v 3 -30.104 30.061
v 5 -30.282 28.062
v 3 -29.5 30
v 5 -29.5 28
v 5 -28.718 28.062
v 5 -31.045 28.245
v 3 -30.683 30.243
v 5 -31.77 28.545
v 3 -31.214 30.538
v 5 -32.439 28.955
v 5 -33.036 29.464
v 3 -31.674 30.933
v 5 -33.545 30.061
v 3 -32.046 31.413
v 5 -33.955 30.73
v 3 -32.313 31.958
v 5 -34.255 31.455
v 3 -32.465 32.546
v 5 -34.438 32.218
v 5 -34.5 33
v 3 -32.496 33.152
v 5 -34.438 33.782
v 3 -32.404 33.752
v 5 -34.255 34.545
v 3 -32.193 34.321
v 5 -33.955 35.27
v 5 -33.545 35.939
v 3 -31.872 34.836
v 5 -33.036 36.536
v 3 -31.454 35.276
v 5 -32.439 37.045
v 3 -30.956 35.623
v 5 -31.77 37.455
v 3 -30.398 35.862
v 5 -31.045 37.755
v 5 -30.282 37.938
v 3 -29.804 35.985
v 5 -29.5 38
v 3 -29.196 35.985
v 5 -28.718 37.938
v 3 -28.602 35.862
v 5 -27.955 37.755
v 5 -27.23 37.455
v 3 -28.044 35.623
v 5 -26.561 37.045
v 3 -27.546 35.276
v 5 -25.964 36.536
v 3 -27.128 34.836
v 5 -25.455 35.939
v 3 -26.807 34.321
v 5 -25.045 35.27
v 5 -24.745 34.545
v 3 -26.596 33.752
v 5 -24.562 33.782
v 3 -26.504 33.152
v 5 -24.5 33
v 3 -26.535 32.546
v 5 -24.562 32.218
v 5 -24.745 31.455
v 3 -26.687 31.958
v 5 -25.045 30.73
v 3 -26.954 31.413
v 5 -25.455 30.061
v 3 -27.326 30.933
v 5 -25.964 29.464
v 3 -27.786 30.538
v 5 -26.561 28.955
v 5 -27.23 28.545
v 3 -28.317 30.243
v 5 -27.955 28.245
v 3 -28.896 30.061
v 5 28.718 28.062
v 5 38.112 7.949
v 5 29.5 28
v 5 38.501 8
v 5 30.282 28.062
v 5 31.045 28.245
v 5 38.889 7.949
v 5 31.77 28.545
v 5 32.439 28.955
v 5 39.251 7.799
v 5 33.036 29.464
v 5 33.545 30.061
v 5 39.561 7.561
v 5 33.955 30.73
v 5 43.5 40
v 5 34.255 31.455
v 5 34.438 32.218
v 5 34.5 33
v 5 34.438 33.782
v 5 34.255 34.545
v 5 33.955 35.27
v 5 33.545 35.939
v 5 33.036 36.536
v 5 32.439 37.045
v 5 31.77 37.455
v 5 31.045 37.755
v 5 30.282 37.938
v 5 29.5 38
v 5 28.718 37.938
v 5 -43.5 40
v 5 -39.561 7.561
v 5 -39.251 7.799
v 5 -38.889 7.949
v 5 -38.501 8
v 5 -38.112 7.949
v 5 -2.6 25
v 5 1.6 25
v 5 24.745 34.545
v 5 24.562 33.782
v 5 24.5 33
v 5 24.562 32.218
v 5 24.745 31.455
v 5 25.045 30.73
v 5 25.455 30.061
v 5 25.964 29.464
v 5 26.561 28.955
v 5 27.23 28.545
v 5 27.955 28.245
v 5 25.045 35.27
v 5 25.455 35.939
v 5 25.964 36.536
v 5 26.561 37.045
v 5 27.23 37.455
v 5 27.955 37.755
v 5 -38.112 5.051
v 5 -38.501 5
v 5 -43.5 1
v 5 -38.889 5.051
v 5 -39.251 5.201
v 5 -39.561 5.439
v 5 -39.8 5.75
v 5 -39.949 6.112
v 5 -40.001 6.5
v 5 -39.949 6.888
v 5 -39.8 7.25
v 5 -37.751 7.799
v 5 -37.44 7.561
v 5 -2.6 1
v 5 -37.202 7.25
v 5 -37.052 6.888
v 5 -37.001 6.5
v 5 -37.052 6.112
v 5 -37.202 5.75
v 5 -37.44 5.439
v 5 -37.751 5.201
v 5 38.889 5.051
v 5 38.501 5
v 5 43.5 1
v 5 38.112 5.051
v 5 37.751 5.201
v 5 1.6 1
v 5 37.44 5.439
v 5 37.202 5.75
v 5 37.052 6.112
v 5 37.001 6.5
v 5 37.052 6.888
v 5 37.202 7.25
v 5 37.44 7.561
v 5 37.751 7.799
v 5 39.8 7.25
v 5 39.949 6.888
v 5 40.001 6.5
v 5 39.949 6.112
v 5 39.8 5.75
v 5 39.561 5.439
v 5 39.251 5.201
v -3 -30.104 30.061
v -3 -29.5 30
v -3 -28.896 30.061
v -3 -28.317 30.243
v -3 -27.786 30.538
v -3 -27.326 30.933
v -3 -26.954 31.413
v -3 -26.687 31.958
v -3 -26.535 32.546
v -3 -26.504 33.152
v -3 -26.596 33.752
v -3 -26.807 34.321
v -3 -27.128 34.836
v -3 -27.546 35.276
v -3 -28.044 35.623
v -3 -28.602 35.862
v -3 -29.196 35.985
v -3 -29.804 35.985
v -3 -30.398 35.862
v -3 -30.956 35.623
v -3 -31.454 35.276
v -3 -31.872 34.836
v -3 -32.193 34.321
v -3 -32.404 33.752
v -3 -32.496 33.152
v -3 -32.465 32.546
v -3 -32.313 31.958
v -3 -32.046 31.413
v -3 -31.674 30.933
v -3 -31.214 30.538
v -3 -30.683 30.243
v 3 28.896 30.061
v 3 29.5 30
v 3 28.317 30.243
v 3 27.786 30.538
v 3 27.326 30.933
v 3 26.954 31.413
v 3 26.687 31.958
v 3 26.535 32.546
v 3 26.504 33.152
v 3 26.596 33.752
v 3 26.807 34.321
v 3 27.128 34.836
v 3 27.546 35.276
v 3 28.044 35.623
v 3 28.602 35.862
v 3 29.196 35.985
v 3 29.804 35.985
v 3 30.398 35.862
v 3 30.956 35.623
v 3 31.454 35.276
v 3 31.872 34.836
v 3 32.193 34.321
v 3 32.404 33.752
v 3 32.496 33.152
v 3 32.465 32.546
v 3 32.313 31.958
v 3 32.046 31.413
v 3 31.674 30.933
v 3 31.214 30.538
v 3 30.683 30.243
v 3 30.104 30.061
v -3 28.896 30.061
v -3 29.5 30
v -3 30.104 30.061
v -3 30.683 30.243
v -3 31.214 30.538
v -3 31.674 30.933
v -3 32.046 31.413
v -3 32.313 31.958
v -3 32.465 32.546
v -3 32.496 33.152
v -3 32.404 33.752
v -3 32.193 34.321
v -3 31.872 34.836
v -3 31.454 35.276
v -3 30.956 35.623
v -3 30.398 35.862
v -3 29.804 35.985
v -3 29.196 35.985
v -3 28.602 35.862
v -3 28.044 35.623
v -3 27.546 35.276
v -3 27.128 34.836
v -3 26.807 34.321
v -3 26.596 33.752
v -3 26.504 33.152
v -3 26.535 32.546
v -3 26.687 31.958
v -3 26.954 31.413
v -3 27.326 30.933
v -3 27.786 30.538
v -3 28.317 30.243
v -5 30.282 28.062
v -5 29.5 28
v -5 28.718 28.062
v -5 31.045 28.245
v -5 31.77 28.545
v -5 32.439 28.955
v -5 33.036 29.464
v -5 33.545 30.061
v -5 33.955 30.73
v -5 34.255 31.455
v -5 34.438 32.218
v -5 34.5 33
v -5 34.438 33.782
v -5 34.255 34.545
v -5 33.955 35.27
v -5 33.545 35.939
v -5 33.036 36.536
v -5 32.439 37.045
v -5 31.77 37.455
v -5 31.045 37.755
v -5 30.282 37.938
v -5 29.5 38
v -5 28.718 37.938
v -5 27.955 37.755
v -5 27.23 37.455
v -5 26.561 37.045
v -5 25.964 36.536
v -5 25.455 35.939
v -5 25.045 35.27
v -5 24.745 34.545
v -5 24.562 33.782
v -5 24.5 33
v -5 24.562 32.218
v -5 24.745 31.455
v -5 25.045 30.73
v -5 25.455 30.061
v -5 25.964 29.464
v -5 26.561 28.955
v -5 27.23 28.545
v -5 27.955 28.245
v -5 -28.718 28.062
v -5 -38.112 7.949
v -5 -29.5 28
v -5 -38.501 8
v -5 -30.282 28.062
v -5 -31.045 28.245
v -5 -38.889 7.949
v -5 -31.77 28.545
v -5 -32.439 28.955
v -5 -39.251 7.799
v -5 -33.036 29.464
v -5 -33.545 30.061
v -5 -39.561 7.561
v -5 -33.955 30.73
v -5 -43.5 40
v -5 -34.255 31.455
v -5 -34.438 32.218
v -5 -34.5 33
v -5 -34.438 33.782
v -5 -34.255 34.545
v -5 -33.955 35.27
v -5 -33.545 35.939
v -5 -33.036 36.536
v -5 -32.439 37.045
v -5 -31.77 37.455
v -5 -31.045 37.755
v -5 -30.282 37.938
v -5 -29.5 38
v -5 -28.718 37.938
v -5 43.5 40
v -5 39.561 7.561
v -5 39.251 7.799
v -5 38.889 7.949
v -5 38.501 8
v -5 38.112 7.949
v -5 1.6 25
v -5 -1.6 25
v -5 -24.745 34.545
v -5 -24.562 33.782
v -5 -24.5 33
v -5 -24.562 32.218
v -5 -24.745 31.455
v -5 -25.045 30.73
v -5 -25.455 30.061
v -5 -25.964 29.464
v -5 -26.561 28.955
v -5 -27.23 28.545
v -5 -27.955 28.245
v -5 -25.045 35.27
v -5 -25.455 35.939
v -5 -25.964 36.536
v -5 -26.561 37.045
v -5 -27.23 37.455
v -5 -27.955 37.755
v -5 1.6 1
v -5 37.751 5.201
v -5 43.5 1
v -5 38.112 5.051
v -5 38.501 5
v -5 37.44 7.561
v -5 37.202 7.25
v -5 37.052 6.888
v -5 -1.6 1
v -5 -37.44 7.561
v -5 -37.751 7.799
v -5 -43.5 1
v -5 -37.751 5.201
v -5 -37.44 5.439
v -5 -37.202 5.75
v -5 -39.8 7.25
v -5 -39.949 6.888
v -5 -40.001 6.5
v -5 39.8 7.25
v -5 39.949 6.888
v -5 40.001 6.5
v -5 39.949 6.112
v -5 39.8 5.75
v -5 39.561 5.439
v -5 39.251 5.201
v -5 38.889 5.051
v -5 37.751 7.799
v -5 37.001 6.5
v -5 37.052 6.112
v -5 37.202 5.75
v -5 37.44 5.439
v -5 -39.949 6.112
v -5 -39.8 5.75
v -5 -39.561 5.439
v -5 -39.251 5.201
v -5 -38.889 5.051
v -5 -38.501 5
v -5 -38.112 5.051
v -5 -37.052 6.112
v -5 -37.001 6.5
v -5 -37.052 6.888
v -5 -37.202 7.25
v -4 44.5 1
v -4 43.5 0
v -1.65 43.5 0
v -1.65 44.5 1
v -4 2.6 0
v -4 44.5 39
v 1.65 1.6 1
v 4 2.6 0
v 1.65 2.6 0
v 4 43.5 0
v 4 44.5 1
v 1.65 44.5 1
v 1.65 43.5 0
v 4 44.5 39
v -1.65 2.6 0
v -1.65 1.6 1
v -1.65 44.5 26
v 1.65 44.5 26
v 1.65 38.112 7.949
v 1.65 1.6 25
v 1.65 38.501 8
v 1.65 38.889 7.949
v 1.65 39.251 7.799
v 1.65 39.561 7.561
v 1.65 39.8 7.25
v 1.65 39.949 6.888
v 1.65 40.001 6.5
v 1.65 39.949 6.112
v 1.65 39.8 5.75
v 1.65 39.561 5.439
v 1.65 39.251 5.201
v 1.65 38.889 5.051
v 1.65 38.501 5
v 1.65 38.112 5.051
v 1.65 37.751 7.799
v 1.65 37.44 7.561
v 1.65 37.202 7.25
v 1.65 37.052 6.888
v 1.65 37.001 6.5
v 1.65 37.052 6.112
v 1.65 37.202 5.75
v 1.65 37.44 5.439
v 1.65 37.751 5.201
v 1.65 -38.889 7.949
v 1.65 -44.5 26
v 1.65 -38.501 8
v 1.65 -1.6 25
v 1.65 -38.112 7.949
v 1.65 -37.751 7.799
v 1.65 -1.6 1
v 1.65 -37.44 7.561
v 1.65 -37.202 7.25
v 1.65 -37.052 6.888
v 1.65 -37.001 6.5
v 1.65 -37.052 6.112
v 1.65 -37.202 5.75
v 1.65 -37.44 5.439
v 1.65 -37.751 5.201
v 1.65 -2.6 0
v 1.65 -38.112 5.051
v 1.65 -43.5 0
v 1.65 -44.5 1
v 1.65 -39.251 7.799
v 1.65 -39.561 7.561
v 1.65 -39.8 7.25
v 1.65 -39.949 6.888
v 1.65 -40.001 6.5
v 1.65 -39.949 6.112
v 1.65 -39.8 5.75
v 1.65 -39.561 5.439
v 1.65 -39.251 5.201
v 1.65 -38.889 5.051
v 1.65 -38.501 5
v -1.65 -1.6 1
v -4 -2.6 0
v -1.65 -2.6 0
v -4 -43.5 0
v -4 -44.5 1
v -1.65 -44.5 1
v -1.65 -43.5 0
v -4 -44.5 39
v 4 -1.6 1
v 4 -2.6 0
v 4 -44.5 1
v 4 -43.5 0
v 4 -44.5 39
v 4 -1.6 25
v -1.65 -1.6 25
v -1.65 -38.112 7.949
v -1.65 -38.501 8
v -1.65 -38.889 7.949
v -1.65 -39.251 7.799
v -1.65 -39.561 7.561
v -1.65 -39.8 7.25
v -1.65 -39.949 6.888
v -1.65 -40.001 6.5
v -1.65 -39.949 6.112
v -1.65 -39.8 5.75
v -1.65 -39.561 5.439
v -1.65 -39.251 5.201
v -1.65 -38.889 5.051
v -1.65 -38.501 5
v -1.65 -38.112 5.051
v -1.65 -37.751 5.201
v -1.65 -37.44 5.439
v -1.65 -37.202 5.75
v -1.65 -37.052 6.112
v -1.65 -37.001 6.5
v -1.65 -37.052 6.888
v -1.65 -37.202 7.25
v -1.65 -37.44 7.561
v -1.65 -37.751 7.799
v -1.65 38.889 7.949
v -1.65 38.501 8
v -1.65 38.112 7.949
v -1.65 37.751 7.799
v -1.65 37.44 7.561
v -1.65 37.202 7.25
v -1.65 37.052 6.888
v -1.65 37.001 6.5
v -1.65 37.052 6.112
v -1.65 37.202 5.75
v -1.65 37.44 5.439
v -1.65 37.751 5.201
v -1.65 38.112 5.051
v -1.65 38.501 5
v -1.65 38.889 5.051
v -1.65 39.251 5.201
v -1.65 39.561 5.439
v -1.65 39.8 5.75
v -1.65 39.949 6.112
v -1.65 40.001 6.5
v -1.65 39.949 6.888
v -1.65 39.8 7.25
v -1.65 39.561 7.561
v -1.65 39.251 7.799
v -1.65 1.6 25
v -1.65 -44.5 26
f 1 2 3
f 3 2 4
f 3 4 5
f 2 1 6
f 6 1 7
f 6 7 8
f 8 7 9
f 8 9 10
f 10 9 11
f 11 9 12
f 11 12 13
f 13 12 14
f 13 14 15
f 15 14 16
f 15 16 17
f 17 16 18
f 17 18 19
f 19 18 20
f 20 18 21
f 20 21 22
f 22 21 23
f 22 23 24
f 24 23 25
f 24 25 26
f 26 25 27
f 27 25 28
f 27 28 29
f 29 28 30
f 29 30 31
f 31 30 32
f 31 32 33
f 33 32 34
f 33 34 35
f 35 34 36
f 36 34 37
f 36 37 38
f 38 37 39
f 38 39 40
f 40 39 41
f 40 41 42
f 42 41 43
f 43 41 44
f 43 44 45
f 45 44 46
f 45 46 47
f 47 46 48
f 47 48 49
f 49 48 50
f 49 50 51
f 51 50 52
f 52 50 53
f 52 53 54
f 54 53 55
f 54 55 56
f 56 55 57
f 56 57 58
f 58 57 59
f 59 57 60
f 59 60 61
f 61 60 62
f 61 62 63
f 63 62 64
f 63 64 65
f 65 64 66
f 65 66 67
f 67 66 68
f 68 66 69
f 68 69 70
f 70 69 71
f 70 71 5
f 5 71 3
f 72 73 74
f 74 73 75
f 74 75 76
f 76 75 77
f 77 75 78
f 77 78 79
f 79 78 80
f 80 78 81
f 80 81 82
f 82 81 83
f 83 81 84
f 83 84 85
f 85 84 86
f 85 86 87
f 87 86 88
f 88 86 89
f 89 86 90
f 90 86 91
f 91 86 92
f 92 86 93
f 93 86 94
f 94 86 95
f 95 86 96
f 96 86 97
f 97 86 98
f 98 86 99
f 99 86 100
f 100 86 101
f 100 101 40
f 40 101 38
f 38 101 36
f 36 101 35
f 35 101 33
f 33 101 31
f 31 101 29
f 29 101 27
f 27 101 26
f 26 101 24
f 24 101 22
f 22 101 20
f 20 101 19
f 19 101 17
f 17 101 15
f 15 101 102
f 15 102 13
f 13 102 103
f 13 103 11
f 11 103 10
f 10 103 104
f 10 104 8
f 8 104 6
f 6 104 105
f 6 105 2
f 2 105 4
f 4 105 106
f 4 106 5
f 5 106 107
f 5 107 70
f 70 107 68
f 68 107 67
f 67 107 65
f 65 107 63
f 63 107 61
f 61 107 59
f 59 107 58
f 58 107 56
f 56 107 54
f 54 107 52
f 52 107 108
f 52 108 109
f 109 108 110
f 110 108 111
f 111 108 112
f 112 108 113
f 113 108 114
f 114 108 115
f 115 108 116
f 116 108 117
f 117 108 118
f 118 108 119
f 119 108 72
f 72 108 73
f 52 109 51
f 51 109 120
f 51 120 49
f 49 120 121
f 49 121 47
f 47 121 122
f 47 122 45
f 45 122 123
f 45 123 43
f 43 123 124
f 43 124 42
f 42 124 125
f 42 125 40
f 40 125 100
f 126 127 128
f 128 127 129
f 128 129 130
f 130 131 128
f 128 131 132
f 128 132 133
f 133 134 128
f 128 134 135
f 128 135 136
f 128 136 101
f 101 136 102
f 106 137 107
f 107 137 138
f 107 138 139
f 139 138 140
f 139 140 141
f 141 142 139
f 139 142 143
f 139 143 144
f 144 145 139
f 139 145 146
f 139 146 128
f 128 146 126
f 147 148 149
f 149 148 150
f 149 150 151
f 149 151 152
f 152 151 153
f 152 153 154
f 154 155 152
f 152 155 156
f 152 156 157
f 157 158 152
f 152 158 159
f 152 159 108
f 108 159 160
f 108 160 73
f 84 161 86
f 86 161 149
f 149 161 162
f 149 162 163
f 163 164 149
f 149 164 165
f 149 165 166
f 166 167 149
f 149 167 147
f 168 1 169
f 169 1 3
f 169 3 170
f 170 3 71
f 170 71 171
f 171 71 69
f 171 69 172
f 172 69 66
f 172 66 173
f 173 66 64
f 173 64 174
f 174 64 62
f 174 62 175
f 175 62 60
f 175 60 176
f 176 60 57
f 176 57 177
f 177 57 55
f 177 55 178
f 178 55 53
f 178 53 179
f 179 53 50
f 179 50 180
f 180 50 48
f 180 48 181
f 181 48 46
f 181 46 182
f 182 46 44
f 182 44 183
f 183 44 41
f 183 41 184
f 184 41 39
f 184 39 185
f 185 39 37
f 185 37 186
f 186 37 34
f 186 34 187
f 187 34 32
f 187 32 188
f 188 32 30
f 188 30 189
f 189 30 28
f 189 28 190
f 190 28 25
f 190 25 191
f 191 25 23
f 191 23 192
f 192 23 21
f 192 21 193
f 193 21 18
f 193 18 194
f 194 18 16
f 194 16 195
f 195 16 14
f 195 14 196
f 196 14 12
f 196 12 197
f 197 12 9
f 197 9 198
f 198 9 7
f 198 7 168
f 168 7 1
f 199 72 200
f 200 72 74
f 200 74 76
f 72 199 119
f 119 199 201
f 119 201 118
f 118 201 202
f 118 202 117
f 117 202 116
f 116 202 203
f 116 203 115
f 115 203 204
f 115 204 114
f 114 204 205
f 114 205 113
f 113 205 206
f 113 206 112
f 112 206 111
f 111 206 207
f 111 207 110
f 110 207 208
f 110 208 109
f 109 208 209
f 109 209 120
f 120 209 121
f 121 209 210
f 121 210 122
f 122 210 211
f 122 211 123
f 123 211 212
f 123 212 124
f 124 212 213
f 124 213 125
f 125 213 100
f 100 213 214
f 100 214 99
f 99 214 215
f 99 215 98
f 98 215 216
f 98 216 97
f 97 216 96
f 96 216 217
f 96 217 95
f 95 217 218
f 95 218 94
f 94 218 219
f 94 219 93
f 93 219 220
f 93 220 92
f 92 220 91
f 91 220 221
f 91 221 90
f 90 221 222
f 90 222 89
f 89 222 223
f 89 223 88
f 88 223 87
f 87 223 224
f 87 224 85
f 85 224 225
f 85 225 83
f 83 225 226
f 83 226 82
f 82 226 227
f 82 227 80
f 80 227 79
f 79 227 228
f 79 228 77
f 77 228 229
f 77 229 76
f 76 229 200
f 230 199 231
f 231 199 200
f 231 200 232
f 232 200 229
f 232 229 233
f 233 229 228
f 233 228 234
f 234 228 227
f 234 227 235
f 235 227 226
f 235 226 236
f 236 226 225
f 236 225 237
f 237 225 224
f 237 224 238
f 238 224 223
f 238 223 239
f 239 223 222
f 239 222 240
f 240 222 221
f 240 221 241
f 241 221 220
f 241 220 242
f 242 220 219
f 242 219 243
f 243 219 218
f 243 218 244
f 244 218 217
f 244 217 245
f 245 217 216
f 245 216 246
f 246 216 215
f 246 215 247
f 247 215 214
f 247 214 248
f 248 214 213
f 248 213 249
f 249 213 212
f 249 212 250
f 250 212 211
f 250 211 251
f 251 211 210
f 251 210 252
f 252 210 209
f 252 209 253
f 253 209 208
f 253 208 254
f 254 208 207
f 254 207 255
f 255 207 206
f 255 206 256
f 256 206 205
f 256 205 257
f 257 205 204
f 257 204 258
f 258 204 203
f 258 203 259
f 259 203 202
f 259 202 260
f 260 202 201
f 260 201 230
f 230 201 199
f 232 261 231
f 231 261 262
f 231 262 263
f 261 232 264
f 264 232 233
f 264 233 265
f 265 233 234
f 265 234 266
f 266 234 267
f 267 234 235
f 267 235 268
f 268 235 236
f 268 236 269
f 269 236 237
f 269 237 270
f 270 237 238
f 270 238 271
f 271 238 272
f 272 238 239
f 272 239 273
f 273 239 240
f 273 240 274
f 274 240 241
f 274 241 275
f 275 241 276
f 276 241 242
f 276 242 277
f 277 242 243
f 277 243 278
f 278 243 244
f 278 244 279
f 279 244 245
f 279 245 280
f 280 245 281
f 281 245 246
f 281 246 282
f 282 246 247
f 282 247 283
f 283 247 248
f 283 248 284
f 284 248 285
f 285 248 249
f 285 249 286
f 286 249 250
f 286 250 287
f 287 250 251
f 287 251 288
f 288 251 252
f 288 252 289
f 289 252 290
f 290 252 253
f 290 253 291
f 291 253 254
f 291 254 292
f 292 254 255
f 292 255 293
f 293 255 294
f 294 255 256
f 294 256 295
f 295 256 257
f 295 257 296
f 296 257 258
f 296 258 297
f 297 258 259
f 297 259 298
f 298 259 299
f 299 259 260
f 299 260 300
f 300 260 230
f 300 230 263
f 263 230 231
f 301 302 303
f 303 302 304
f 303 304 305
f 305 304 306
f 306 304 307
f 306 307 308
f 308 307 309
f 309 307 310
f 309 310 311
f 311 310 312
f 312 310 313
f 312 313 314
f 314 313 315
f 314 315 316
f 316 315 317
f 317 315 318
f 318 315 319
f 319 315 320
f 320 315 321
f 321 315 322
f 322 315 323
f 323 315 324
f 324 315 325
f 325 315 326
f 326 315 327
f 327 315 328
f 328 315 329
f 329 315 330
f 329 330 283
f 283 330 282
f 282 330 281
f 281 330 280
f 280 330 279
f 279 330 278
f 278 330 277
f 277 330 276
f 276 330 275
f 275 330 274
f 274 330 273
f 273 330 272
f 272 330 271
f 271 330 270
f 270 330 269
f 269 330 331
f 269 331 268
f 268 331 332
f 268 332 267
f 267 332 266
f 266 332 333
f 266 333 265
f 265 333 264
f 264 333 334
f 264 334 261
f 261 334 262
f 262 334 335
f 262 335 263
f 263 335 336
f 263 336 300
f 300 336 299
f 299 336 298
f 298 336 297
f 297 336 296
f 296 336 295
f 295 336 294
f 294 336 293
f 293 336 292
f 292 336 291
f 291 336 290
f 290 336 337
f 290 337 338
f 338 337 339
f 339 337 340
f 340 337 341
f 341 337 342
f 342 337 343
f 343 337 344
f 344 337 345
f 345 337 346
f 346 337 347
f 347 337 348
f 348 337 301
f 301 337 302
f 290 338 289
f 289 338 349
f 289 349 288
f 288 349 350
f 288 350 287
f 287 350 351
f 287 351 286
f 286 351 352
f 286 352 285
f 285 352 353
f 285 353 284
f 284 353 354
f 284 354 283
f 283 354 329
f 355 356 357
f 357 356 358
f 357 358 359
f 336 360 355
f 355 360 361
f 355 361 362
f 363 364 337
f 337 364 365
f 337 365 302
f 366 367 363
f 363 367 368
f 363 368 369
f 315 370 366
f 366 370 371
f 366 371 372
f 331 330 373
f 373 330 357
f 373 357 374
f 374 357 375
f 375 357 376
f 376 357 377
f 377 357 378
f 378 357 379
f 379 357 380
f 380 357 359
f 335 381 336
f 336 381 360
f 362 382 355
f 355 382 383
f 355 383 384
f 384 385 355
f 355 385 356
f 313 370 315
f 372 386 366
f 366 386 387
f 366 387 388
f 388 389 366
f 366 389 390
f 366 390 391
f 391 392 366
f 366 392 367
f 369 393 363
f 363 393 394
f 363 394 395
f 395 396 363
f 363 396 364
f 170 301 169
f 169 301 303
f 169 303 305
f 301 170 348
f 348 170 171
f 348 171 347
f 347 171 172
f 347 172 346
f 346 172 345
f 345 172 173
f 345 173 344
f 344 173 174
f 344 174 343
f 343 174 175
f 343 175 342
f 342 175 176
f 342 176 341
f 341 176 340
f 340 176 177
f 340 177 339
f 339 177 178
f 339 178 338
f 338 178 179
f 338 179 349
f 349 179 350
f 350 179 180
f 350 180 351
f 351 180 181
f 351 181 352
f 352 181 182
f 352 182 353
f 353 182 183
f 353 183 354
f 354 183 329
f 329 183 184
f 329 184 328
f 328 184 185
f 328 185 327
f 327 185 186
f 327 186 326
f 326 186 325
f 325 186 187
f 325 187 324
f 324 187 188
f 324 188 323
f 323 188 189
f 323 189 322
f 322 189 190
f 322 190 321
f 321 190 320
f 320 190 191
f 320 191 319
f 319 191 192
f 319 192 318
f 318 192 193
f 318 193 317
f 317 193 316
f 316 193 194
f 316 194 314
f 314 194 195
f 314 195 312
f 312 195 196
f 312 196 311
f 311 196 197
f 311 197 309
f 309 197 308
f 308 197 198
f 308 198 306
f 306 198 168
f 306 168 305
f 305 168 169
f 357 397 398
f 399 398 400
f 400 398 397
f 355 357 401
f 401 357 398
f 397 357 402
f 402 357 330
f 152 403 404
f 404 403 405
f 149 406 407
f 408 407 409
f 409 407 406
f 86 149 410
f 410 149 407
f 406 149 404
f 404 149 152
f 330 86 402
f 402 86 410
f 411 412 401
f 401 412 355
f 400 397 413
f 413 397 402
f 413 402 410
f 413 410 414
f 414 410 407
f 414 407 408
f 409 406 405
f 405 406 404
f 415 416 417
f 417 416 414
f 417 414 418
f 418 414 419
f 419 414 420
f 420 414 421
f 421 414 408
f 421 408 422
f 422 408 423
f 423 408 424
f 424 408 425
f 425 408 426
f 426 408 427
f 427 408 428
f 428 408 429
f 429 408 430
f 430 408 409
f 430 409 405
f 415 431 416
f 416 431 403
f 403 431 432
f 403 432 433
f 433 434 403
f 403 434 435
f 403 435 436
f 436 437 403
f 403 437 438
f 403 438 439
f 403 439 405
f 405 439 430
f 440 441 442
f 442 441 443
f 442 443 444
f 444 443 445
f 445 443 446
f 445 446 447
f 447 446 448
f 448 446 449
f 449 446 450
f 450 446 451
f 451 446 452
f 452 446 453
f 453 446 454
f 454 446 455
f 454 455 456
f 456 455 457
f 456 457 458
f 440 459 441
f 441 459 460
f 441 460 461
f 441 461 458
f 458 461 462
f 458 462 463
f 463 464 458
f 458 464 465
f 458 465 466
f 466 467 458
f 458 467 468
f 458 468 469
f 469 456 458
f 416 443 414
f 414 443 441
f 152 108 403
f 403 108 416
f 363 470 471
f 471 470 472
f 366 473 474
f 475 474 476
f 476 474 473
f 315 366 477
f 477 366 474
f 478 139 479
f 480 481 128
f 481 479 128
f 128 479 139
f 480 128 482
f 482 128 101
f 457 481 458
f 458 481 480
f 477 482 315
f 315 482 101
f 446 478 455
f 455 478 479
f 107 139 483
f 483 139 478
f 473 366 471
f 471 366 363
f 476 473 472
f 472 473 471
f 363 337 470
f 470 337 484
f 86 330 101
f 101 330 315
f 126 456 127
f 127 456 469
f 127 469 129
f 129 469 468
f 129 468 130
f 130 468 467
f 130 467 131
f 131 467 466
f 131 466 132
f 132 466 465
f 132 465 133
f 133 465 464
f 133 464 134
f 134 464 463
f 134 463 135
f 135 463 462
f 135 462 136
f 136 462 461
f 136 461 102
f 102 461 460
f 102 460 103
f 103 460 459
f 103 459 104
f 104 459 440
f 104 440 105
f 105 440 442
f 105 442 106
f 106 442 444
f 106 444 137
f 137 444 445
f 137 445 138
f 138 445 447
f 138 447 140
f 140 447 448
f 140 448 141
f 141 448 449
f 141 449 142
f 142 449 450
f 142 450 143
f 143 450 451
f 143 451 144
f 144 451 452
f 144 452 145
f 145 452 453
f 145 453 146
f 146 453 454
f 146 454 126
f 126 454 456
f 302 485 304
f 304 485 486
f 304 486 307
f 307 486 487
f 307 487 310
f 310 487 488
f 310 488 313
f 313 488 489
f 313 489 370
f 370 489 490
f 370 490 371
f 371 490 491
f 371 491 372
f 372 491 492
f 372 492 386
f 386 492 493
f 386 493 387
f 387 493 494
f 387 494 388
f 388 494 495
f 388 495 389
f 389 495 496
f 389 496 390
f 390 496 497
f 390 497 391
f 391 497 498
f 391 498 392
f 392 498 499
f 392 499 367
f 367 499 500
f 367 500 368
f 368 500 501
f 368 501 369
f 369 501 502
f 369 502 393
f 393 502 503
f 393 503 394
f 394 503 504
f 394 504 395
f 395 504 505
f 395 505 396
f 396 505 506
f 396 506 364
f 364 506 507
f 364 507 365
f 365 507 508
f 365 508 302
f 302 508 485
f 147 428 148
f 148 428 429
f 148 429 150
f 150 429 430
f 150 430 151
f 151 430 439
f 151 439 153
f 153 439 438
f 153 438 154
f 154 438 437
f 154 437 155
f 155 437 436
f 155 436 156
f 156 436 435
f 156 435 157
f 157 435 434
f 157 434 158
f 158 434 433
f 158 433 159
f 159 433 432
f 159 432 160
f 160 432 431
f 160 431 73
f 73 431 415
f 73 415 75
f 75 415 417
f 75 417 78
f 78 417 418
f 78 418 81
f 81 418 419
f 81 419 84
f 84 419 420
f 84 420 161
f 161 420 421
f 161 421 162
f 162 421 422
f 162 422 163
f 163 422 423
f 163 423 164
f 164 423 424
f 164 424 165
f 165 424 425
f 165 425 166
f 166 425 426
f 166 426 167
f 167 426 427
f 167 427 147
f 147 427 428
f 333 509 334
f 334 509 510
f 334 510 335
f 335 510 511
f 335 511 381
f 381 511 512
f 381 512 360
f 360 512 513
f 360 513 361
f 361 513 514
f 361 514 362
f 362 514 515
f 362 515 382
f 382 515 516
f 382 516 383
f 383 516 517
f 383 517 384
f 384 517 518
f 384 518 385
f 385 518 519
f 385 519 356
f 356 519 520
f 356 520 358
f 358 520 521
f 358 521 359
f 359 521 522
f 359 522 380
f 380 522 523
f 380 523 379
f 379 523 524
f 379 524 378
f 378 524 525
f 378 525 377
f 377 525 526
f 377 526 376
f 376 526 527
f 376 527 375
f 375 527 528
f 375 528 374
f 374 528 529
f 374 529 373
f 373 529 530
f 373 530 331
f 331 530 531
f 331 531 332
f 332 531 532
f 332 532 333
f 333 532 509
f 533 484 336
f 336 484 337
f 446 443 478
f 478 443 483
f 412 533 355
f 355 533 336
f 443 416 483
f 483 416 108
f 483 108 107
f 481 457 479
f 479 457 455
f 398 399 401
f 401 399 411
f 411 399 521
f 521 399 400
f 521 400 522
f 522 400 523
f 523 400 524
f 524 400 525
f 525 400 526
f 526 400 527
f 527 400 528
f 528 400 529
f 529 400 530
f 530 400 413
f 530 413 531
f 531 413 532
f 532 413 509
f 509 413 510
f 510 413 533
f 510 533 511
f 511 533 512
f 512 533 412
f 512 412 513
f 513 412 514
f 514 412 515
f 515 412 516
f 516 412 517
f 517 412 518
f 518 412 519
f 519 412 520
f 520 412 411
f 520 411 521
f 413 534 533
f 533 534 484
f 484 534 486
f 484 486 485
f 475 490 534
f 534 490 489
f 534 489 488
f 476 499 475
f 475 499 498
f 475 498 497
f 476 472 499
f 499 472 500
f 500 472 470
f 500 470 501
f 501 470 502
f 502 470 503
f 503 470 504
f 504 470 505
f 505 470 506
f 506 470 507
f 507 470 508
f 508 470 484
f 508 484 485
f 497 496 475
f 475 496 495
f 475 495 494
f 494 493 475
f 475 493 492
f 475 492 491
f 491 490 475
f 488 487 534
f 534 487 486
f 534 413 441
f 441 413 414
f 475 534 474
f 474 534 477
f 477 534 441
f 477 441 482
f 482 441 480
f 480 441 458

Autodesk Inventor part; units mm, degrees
ref_plane "YZ Plane" through (0, 0, 0) normal (1, 0, 0) x (0, 1, 0)
ref_plane "XZ Plane" through (0, 0, 0) normal (0, 1, 0) x (-1, 0, 0)
ref_plane "XY Plane" through (0, 0, 0) normal (0, 0, 1) x (1, 0, 0)
sketch "Sketch1" plane through (0, 0, 0) normal (0, 0, 1) x (1, 0, 0)
  line L0 (-5, 44.5) -> (5, 44.5)
  line L1 (5, 44.5) -> (5, -44.5)
  line L2 (5, -44.5) -> (-5, -44.5)
  line L3 (-5, -44.5) -> (-5, 44.5)
  line L4 (-5, 44.5) -> (5, -44.5) construction
  line L5 (5, 44.5) -> (-5, -44.5) construction
  point P0 (0, 0)
  dimension "d0" = 10
  dimension "d1" = 89
extrude "Extrusion1" add sketch "Sketch1" along normal blind 40
sketch "Sketch2" plane through (0, 0, 0) normal (0, 0, -1) x (-1, 0, 0)
  line L0 (1.65, -44.5) -> (-1.65, -44.5)
  line L1 (-1.65, -44.5) -> (-1.65, 44.5)
  line L2 (-1.65, 44.5) -> (1.65, 44.5)
  line L3 (1.65, 44.5) -> (1.65, -44.5)
  line L4 (1.65, -44.5) -> (-1.65, 44.5) construction
  line L5 (-1.65, -44.5) -> (1.65, 44.5) construction
  line L6 (-5, -44.5) -> (5, -44.5) projected
  point P0 (0, 0)
  dimension "d4" = 3.3
extrude "Extrusion2" cut sketch "Sketch2" against normal blind 26
sketch "Sketch4" plane through (5, -44.5, 0) normal (1, 0, 0) x (0, 0, -1)
  line L0 (-25, 42.9) -> (0, 42.9)
  line L1 (0, 42.9) -> (0, 46.1)
  line L2 (0, 46.1) -> (-25, 46.1)
  line L3 (-25, 46.1) -> (-25, 42.9)
  line L4 (0, 89) -> (0, 0) projected
  point P0 (0, 44.5)
  point P1 (0, 44.5)
  dimension "d15" = 25
  dimension "d16" = 3.2
extrude "Extrusion3" cut sketch "Sketch4" against normal blind 16
sketch "Sketch3" plane through (5, -44.5, 0) normal (1, 0, 0) x (0, 0, -1)
  line L0 (0, 89) -> (-40, 89) projected
  line L1 (0, 89) -> (0, 0) projected
  line L2 (0, 0) -> (-40, 0) projected
  line L3 (-6.5, 5.9994) -> (-6.5, 83.0006) construction
  point P0 (0, 44.5)
  point P1 (-6.5, 44.5)
  point P2 (-26, 0)
  dimension "d19" = 19.5
hole "Hole1" at (5, 0, 6.5) at (5, -38.5006, 6.5) at (5, 38.5006, 6.5) direction (-1, 0, 0) diameter 3 depth 26.75
chamfer "Chamfer1" distance 1 angle 45 19 edges at (5, -44.5, 20) (-5, -44.5, 20) (5, 44.5, 20) (-5, 44.5, 20) (-3.325, -44.5, 0) (3.325, -44.5, 0) (-3.325, 44.5, 0) (3.325, 44.5, 0) (3.325, -1.6, 0) (3.325, 1.6, 0) (-3.325, 1.6, 0) (-3.325, -1.6, 0) (-5, -23.05, 0) (5, -1.6, 12.5) (5, -23.05, 0) (5, 23.05, 0) (-5, 23.05, 0) (0, 44.5, 40) (0, -44.5, 40)
sketch "Sketch5" plane through (5, -43.5, 40) normal (1, 0, 0) x (0, 0, -1)
  circle A0 centre (7, 14) radius 3
  line L0 (40, 0) -> (40, 40.9) projected
  line L1 (1, -1) -> (39, -1) projected
  circle A1 centre (7, 73) radius 3
  line L2 (39, 88) -> (1, 88) projected
  point P0 (40, 43.5)
  dimension "d23" = 6
  dimension "d24" = 33
  dimension "d25" = 15
  dimension "d26" = 15
extrude "Extrusion4" cut sketch "Sketch5" against normal blind 10
chamfer "Chamfer2" distance 2 angle 45 4 edges at (-5, -29.5, 36) (-5, 29.5, 36) (5, 29.5, 36) (5, -29.5, 36)
equation "\"d26\" = d25"
properties part number "Aligner Helper v2"
